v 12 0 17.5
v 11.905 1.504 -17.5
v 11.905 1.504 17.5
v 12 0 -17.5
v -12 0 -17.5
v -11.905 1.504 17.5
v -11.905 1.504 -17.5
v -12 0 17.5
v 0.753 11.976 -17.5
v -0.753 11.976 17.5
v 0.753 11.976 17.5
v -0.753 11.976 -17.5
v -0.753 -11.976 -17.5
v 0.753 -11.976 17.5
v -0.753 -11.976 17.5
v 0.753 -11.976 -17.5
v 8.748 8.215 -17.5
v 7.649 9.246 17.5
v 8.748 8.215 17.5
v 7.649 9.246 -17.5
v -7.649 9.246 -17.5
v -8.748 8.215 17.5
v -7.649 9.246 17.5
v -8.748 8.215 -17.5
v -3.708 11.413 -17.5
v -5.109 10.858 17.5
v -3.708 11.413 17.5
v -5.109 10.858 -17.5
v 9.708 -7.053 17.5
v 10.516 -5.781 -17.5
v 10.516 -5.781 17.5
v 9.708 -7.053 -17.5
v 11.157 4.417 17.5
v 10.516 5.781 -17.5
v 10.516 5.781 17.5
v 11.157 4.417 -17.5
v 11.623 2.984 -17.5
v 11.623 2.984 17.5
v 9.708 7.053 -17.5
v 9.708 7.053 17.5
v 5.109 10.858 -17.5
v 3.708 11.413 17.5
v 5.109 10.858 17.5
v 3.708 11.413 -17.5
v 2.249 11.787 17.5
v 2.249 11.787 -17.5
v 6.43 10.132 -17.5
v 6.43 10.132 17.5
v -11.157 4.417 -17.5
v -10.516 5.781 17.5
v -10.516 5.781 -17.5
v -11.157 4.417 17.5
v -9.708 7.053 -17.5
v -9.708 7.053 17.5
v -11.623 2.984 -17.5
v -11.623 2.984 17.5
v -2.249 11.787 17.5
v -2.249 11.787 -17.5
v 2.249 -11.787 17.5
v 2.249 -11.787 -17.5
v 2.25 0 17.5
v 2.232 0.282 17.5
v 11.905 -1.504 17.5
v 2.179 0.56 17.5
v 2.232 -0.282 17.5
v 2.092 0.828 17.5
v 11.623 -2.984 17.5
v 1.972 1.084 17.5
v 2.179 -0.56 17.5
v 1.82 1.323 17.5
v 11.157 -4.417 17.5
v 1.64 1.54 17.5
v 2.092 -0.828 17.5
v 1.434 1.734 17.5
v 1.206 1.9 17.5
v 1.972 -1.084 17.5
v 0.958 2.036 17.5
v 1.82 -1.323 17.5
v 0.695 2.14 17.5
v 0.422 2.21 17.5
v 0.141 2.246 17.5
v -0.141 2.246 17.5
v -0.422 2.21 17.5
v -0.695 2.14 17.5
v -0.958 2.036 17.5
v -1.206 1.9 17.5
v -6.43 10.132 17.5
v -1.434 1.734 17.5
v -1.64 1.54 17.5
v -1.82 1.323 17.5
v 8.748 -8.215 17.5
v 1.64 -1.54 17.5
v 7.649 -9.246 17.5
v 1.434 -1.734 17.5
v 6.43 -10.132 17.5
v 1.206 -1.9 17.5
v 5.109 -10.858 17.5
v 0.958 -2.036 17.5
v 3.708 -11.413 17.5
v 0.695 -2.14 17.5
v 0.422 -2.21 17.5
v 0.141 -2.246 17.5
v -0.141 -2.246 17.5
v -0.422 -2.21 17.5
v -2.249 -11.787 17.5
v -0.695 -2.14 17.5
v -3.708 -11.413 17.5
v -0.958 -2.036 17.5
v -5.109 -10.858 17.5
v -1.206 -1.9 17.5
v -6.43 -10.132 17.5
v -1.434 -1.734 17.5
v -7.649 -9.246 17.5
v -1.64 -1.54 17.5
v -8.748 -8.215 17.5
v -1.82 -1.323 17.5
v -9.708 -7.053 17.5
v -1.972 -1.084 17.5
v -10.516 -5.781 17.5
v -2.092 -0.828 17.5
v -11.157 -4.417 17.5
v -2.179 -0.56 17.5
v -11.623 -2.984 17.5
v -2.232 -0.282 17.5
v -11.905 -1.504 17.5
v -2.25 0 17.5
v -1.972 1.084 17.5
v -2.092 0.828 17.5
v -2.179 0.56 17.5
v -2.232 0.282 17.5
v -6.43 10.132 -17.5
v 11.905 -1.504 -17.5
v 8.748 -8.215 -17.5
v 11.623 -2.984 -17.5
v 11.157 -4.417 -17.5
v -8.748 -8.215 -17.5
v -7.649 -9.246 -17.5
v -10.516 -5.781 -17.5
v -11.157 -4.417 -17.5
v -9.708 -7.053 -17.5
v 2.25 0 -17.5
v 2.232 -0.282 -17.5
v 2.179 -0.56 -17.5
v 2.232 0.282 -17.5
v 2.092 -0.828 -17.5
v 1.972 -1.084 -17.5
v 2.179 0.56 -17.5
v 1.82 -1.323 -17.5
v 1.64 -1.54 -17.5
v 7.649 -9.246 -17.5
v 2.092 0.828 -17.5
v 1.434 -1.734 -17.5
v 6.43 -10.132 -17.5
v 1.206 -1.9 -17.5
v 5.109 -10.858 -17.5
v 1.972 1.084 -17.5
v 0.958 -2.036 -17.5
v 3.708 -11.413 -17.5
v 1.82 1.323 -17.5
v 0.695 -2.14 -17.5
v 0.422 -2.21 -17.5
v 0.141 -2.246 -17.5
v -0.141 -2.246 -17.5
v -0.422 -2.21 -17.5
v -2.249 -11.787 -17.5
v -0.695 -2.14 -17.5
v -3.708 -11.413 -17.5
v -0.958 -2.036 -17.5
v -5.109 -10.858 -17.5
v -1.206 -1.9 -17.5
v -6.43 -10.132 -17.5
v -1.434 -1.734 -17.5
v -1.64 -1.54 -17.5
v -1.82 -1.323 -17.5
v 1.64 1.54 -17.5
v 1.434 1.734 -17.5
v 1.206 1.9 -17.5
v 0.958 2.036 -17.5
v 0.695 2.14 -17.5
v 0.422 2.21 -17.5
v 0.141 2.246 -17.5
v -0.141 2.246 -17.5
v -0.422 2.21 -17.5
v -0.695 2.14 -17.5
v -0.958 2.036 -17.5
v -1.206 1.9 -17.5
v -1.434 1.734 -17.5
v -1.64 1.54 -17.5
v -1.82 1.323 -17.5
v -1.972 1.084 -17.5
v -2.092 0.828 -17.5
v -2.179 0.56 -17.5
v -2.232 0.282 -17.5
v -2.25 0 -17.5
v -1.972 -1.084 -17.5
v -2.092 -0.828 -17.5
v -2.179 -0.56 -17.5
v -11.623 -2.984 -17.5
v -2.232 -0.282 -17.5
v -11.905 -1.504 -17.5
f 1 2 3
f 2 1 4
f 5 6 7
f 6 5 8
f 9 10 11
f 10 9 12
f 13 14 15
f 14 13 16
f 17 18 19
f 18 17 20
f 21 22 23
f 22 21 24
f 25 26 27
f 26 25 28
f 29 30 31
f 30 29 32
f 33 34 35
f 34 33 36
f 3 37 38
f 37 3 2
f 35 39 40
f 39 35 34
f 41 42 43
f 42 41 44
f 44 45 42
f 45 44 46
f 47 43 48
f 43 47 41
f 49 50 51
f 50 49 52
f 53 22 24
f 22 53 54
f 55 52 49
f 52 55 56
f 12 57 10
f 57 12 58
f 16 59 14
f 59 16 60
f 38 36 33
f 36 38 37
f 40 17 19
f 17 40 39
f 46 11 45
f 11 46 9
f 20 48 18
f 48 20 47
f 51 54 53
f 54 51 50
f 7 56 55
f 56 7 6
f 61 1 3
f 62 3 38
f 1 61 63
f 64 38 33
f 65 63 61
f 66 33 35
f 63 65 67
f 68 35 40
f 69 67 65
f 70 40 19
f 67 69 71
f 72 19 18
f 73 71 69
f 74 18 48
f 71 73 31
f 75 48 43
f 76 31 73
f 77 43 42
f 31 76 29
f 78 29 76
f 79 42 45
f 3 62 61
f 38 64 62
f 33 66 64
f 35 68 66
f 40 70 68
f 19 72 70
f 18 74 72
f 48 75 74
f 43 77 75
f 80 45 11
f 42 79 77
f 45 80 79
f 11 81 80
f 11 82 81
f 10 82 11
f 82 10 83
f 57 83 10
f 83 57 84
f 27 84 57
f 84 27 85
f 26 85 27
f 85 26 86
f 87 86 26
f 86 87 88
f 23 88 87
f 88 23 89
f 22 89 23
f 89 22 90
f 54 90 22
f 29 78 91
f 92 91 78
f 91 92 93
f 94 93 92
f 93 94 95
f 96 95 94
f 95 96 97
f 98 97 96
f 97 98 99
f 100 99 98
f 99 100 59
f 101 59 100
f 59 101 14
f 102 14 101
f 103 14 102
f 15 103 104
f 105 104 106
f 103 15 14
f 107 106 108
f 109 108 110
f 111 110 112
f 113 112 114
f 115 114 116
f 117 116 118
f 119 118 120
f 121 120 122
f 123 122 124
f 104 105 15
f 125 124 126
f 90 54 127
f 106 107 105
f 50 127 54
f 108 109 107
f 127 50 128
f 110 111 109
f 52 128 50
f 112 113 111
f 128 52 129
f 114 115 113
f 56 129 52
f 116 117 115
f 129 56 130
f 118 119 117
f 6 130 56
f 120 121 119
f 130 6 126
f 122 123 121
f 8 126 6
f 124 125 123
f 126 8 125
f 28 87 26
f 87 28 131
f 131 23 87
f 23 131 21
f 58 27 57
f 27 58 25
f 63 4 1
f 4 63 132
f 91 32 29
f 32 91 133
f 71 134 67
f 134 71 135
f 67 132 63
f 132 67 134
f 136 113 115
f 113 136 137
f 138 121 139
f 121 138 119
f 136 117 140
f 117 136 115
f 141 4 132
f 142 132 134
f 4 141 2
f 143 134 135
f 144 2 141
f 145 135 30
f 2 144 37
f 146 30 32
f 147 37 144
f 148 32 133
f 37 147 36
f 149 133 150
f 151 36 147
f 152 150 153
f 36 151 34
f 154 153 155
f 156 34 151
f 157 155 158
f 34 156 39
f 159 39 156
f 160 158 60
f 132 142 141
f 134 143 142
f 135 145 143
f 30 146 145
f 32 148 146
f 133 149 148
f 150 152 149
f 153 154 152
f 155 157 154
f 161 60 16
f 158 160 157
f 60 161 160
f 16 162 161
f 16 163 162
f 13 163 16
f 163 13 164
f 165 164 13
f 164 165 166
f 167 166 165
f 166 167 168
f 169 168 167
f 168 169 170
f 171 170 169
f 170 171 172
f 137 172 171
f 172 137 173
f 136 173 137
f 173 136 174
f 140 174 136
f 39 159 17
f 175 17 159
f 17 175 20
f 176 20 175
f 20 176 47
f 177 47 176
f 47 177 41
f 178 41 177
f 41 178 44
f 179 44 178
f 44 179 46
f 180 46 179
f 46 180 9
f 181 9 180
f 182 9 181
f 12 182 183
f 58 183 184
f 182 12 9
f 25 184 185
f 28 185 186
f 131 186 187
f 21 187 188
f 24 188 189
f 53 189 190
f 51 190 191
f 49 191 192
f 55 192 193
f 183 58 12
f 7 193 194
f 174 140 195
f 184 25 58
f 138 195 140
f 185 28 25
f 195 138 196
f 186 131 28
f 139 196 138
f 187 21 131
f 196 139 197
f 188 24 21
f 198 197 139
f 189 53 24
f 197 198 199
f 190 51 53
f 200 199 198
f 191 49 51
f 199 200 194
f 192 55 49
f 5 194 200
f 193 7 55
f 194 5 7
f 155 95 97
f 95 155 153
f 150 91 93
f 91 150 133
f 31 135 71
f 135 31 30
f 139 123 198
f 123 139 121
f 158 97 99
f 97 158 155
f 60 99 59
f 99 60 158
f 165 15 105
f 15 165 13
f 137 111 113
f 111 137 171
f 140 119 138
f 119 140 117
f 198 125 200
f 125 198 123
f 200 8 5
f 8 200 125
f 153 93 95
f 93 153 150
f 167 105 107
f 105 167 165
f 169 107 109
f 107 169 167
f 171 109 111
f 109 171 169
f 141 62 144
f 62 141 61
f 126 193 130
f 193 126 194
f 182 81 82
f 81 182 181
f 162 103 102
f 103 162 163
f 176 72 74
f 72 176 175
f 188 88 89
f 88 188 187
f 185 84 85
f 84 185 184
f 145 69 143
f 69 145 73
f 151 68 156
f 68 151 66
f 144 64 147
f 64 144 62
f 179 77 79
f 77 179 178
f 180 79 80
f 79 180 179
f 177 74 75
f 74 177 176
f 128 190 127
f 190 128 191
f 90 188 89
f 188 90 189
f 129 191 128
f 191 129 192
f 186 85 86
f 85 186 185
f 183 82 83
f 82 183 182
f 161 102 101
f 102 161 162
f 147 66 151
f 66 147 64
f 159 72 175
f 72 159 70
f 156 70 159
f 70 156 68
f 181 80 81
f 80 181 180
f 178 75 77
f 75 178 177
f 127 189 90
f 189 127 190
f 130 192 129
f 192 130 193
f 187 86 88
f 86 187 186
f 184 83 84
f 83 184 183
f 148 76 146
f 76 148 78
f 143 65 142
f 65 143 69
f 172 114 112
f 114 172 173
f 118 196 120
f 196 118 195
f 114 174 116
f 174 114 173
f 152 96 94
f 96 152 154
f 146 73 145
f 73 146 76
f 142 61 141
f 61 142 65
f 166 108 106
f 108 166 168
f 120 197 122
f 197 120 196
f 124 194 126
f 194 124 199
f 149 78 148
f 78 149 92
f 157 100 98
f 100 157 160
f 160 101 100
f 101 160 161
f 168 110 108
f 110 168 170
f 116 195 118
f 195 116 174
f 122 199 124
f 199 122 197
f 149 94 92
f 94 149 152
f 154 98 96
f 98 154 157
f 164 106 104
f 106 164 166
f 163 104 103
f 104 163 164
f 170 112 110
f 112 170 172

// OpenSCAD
$fn = 50;


difference() {
	union() {
		translate(v = [0, 0, -17.5000000000]) {
			cylinder(h = 35, r = 12.0000000000);
		}
	}
	union() {
		translate(v = [0, 0, -100.0000000000]) {
			cylinder(h = 200, r = 2.2500000000);
		}
	}
}
